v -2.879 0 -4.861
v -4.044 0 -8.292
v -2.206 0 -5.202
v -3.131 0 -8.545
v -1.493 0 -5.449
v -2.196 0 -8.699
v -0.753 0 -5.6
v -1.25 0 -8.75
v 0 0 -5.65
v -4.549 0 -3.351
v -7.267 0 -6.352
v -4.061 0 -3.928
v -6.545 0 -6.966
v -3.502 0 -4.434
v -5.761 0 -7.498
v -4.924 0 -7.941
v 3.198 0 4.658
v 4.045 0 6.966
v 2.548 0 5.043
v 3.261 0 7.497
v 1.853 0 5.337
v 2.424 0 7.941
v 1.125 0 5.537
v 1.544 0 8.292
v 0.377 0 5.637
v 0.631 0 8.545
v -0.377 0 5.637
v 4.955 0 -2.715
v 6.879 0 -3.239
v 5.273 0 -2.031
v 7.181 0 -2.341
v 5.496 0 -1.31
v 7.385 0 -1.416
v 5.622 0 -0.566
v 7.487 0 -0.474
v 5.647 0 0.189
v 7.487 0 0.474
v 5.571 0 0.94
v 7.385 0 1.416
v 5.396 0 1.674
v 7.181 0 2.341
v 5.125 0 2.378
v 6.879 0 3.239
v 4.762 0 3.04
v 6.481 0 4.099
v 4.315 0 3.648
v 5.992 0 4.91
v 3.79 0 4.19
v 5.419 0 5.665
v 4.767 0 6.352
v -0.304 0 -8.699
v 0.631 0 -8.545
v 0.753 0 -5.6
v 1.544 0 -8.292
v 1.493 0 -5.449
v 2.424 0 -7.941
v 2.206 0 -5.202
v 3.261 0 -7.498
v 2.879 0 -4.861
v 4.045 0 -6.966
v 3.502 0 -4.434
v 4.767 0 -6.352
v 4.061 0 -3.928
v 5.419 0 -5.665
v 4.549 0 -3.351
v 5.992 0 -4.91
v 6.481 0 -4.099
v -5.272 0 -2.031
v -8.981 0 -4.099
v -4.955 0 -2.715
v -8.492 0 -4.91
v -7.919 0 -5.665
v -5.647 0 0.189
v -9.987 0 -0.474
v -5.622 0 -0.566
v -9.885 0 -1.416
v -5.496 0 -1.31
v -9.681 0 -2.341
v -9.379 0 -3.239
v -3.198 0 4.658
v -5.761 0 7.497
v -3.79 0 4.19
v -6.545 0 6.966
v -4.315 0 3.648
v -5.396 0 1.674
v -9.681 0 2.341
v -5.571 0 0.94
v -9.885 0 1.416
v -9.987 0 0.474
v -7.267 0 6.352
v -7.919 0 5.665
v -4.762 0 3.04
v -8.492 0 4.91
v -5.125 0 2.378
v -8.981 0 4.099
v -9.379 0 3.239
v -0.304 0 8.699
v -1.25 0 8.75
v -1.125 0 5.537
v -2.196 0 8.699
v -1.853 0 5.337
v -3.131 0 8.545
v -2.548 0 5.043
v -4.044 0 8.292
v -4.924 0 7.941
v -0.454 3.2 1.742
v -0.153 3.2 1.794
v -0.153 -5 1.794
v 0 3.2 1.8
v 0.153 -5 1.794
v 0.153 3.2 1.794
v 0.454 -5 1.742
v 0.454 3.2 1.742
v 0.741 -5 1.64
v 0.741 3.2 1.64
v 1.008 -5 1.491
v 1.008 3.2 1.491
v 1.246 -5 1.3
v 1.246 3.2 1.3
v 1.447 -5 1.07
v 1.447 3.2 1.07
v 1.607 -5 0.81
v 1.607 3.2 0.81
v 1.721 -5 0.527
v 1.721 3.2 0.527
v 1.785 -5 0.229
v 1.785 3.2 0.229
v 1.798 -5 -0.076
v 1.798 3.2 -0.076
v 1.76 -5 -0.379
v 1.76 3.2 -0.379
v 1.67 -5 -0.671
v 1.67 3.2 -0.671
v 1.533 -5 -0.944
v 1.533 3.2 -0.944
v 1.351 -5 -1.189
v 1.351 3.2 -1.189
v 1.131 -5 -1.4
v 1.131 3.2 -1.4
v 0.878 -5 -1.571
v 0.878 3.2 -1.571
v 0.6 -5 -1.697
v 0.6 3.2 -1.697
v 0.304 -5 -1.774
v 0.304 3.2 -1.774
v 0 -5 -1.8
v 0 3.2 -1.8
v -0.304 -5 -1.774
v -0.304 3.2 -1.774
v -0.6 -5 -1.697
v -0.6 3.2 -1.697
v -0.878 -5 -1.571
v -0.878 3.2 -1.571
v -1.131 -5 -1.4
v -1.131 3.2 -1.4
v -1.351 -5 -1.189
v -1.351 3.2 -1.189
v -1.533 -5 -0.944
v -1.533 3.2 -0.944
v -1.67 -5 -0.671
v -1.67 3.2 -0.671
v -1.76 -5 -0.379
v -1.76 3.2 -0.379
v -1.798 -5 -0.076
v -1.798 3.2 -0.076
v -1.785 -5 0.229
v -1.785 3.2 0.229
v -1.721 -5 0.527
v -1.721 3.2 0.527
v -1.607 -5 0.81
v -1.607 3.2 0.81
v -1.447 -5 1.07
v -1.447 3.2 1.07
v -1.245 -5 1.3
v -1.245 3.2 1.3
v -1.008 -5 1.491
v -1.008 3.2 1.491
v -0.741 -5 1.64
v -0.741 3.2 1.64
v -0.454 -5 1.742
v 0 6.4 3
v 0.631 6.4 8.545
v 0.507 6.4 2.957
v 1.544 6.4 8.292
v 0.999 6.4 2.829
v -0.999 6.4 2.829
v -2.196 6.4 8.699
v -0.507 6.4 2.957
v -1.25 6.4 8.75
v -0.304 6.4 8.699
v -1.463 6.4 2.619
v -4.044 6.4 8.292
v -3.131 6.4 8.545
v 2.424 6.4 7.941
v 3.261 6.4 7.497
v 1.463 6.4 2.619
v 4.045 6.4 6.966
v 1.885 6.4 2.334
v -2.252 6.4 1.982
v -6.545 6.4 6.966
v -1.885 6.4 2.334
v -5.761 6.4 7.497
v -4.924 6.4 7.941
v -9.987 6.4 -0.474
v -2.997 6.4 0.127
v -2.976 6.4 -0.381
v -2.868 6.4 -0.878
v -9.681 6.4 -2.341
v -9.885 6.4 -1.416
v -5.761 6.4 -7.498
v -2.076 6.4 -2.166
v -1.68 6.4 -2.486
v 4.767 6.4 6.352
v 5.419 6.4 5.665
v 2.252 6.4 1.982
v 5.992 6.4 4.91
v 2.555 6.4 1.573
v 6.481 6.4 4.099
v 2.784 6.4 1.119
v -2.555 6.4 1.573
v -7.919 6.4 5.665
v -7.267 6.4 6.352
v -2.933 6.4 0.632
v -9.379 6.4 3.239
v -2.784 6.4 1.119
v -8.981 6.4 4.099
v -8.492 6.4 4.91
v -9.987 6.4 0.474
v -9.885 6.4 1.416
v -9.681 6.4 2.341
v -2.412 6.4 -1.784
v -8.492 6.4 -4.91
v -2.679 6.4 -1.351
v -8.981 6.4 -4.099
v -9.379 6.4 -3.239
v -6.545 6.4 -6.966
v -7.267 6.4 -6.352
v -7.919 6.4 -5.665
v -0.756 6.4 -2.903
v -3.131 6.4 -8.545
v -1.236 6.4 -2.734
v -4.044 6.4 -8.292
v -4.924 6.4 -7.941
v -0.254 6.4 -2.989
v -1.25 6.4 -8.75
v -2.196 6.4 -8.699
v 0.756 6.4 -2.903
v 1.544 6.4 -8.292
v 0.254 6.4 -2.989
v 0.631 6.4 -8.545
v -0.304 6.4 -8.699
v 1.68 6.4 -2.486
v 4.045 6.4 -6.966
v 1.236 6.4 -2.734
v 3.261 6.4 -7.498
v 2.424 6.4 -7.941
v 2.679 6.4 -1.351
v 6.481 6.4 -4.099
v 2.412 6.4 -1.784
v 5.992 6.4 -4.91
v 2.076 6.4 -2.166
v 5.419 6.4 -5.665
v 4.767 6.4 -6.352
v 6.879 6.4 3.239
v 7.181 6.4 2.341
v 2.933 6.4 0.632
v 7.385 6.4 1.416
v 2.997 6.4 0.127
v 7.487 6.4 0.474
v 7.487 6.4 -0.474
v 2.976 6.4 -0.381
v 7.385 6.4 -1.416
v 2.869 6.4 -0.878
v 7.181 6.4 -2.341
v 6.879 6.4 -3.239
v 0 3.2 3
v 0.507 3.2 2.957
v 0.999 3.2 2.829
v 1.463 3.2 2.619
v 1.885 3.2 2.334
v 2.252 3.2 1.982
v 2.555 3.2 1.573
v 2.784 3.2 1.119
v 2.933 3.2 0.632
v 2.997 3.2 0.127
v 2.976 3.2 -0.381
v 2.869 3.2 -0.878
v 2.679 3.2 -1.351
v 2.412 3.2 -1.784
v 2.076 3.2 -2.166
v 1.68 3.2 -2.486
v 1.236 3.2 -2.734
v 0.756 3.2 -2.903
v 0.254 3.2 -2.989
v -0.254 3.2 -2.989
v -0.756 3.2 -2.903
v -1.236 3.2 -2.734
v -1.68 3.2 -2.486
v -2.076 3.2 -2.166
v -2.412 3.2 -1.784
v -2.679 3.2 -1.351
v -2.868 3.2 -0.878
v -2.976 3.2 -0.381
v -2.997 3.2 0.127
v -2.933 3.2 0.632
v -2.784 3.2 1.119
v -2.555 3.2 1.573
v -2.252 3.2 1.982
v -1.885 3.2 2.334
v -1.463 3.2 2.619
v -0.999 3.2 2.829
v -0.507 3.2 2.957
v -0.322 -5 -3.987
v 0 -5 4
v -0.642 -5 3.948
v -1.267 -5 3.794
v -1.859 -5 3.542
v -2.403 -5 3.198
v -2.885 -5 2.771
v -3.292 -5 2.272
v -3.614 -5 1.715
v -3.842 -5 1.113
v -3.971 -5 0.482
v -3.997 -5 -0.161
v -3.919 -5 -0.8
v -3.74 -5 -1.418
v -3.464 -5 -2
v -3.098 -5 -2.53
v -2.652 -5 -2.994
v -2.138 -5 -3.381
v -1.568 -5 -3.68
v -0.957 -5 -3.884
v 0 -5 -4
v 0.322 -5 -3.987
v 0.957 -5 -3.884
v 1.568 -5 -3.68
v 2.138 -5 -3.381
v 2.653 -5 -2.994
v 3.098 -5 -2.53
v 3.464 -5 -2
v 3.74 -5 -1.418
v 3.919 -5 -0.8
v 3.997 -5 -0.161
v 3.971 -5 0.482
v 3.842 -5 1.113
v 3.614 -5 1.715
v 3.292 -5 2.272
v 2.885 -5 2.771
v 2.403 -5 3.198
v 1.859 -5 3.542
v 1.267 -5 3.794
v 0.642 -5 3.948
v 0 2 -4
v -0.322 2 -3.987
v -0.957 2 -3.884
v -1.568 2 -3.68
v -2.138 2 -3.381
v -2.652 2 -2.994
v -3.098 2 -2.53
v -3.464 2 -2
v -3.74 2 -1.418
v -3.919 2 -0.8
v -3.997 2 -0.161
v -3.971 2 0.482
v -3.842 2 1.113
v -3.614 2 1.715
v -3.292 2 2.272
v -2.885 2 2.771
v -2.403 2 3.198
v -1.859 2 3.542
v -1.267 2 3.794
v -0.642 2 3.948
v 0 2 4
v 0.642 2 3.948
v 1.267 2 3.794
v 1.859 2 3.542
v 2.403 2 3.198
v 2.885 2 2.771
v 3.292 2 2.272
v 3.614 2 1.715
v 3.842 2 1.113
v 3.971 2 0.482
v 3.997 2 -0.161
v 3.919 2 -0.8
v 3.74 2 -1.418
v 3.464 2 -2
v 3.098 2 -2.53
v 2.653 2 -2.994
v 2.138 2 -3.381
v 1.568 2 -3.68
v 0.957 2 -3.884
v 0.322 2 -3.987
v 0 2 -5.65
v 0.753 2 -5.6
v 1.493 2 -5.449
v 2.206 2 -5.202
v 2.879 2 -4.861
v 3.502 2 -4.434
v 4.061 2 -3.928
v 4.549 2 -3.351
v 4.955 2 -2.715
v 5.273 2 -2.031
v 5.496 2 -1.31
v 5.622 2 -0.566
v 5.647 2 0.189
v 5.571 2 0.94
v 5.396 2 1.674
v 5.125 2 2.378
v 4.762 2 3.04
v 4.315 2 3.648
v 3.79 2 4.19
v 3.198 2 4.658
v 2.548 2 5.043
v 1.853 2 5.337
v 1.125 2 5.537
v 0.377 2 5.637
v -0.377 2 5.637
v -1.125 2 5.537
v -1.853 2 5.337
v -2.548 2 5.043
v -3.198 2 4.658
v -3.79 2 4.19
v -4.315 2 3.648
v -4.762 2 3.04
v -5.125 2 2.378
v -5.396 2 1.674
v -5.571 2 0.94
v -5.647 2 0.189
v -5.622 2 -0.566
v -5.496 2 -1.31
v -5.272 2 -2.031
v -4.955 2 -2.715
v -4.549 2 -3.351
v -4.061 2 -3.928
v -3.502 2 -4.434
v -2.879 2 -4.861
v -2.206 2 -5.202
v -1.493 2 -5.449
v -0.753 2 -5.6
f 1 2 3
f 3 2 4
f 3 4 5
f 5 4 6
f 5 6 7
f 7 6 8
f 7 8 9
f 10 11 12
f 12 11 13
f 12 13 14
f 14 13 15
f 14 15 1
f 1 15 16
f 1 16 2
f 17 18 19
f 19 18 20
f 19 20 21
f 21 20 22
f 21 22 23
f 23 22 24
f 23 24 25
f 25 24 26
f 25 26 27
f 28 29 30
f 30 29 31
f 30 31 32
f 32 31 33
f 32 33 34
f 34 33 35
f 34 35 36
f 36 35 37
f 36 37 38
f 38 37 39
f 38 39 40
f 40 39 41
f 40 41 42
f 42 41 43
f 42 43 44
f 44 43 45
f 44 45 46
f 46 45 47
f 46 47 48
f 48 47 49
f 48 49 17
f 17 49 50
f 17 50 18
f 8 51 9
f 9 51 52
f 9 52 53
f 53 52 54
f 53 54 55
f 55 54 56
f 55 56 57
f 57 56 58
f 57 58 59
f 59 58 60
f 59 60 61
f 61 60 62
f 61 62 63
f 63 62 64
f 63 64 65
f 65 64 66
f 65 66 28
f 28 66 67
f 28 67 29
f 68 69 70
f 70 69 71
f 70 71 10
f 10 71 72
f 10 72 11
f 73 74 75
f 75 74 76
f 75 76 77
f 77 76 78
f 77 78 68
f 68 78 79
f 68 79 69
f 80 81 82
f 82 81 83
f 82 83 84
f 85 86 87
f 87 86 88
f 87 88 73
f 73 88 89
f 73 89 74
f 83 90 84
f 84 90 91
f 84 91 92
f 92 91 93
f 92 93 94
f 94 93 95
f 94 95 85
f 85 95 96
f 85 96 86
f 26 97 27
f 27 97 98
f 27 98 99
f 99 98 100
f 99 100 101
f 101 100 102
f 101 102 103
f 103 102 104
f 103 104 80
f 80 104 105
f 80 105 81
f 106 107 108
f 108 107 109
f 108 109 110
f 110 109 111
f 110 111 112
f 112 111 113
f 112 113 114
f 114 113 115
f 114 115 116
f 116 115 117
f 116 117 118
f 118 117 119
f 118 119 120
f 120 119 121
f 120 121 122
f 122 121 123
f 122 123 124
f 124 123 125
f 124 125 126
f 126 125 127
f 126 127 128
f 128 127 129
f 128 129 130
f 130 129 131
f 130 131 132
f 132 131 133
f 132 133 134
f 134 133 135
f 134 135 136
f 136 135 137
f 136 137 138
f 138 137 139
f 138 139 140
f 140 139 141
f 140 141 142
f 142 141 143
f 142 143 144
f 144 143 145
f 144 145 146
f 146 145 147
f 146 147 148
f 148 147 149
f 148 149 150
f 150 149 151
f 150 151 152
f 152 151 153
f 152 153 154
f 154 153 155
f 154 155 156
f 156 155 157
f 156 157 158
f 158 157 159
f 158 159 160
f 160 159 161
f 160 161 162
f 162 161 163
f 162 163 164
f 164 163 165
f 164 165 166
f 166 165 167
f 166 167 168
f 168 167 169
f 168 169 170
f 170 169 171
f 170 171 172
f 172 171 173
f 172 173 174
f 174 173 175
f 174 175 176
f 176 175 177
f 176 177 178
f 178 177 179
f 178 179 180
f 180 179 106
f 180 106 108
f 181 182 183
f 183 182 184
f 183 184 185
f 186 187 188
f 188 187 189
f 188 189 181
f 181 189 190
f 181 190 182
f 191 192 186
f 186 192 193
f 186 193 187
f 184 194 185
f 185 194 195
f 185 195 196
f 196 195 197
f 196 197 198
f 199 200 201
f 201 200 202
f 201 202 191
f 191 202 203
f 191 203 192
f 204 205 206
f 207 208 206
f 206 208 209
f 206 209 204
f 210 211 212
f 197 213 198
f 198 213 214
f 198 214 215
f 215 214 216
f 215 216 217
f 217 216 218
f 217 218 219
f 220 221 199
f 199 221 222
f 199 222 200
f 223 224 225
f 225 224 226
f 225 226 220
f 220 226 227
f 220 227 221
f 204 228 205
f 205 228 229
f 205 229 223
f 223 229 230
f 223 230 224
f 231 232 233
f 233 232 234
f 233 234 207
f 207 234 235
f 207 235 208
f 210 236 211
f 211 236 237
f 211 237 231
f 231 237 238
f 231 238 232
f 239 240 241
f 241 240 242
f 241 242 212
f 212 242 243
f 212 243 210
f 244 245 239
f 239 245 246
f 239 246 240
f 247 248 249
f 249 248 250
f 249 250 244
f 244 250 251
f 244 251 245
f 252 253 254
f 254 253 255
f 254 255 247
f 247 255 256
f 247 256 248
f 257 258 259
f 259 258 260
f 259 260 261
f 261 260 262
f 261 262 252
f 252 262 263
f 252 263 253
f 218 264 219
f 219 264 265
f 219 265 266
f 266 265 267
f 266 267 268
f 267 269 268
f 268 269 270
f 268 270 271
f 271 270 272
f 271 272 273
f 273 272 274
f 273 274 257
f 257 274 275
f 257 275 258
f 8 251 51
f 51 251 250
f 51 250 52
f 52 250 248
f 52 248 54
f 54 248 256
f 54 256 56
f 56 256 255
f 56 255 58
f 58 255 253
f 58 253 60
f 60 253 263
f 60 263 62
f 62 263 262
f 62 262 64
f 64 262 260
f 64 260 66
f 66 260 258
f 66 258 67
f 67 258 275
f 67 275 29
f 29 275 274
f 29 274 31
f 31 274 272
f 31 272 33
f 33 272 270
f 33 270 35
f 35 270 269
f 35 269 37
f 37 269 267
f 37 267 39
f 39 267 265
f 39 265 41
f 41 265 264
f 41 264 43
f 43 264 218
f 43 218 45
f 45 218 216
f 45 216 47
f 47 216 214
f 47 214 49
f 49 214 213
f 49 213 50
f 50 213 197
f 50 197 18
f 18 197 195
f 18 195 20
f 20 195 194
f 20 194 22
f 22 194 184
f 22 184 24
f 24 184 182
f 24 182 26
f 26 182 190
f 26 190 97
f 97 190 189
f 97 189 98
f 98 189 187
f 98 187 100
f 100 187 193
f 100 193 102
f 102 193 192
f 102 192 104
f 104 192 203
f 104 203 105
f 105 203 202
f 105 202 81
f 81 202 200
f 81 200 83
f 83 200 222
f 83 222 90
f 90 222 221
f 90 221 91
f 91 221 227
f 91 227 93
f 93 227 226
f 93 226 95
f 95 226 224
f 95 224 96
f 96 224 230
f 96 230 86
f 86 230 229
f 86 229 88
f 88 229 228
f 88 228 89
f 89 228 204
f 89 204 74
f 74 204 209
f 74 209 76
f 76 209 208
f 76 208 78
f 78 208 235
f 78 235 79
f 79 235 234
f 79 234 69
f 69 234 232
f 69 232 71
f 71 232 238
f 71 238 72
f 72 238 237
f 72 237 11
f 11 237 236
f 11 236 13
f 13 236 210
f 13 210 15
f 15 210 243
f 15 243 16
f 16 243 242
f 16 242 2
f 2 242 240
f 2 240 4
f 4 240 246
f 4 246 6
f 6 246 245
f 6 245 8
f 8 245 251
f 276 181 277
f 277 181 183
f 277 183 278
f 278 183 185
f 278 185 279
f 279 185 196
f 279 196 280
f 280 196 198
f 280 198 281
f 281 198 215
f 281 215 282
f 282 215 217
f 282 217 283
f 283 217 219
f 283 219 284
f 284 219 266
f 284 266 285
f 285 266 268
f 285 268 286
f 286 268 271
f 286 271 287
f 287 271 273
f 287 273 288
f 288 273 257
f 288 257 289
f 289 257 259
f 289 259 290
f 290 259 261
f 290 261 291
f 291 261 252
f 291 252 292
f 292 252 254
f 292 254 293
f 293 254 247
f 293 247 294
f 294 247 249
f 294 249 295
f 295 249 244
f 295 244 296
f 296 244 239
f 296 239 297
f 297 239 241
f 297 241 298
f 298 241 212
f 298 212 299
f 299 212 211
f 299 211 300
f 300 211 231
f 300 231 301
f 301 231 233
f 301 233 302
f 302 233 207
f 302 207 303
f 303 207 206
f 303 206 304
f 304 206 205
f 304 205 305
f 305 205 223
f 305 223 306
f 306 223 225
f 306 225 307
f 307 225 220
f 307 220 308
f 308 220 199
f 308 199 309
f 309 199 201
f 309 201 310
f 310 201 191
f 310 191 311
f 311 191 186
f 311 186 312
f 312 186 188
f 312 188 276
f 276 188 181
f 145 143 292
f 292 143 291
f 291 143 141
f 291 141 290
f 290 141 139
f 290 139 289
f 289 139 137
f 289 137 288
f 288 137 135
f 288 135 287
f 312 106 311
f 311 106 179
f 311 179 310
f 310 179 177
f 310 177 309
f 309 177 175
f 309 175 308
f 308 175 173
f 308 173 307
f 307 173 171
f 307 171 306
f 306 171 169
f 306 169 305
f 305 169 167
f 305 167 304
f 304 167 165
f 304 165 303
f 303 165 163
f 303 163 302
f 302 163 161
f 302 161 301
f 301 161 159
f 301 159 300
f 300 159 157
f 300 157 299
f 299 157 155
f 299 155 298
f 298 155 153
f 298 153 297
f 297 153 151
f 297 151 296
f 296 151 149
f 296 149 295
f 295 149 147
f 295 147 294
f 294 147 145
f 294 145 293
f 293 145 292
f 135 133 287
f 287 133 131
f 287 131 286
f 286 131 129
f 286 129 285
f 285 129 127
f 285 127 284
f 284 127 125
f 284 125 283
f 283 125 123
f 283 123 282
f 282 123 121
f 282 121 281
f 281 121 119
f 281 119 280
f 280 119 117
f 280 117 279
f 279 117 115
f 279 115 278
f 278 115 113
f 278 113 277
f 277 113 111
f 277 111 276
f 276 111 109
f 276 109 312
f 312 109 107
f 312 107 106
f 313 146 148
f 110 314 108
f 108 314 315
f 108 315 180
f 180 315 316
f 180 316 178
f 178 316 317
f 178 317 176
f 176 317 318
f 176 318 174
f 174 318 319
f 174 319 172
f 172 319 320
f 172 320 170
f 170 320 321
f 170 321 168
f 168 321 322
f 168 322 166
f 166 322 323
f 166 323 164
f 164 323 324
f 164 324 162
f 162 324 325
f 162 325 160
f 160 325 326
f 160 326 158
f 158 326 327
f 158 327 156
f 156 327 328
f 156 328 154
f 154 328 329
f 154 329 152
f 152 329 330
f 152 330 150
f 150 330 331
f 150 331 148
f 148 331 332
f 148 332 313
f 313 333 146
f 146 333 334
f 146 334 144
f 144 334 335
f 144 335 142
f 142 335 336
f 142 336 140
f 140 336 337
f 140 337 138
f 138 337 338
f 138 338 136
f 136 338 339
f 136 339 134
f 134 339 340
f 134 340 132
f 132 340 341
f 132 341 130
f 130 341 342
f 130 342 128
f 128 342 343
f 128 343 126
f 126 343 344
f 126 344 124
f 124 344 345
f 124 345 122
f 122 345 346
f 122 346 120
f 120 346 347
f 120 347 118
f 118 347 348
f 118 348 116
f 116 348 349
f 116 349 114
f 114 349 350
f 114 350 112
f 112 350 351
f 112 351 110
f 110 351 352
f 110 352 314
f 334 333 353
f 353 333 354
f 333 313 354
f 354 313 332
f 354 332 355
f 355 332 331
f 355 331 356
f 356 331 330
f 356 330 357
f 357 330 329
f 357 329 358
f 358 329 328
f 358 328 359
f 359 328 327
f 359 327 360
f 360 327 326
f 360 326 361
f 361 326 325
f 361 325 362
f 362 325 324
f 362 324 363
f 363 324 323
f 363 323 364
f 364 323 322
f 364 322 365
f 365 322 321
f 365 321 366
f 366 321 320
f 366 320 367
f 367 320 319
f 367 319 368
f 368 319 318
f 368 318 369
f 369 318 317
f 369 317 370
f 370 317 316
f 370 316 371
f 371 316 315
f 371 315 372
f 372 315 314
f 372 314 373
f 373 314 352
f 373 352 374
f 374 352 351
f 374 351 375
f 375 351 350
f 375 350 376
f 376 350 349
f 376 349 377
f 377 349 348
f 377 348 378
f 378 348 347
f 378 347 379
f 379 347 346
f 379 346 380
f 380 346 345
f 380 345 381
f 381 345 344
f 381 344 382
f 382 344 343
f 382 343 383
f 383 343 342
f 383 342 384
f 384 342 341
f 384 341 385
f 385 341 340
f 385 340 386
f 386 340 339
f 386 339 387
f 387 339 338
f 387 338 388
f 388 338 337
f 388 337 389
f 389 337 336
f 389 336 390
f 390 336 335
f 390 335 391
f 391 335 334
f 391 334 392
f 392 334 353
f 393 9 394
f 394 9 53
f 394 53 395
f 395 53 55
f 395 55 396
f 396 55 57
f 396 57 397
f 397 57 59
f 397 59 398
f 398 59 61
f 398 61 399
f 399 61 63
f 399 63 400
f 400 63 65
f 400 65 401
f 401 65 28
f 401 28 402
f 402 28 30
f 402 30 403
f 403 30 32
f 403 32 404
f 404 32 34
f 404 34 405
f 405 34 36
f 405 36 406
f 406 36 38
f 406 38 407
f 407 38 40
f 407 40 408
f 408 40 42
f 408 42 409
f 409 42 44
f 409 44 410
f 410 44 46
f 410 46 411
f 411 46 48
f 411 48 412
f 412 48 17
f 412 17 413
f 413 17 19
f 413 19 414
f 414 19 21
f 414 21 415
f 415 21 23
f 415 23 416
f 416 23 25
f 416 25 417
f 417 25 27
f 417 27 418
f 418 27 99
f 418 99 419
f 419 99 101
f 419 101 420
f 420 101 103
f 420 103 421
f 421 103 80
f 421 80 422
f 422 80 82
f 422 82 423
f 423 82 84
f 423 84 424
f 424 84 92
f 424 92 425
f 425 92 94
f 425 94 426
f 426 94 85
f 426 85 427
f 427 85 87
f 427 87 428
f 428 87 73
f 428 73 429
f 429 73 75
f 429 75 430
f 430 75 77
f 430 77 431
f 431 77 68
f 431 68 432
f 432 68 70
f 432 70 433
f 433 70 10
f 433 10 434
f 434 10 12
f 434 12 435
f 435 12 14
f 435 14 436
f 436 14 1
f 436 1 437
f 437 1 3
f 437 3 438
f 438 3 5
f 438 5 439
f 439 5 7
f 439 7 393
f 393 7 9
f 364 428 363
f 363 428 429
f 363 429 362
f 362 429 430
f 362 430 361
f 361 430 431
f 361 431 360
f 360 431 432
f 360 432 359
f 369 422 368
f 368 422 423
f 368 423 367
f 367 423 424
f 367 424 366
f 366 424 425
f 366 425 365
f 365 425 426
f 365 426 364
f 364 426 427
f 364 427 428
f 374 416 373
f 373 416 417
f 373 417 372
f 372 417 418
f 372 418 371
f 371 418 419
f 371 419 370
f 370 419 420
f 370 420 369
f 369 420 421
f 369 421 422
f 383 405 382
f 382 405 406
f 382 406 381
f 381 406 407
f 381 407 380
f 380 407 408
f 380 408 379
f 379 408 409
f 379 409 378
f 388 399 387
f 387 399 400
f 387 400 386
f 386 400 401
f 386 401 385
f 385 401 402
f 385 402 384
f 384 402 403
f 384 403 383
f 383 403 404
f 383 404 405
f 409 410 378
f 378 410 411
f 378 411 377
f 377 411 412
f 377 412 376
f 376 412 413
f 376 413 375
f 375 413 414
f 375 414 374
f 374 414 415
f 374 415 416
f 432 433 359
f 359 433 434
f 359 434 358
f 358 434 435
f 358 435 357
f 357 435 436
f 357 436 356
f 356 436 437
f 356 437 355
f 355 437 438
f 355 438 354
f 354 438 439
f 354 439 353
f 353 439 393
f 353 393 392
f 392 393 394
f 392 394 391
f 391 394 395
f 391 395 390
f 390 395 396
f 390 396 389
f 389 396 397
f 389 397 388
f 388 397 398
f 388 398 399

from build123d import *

# Parameters (mm, degrees)
SKETCH_1_R          = 8.75
SKETCH_1_R_2        = 1.8
EXTRUDE_1_DEPTH     = 6.4
SKETCH_7_R          = 3
CUT_EXTRUDE_1_DEPTH = 3.2
SKETCH_8_R          = 4
SKETCH_8_R_2        = 1.8
EXTRUDE_2_DEPTH     = 5
SKETCH_9_R          = 5.65
SKETCH_9_R_2        = 4
CUT_EXTRUDE_2_DEPTH = 2


with BuildPart() as part:
    # Эскиз1 → Бобышка-Вытянуть1 (new body)
    with BuildSketch(Plane(origin=(0, 0, 0), x_dir=(1, 0, 0), z_dir=(0, 1, 0))):
        with Locations((-1.25, 0)):
            Circle(SKETCH_1_R)
        Circle(SKETCH_1_R_2, mode=Mode.SUBTRACT)
    extrude(amount=EXTRUDE_1_DEPTH)

    # Эскиз7 → Вырез-Вытянуть1 (cut)
    with BuildSketch(Plane(origin=(0, 6.4, 0), x_dir=(1, 0, 0), z_dir=(0, 1, 0))):
        Circle(SKETCH_7_R)
    extrude(amount=-CUT_EXTRUDE_1_DEPTH, mode=Mode.SUBTRACT)

    # Эскиз8 → Бобышка-Вытянуть2 (add)
    with BuildSketch(Plane.XZ):
        Circle(SKETCH_8_R)
        Circle(SKETCH_8_R_2, mode=Mode.SUBTRACT)
    extrude(amount=EXTRUDE_2_DEPTH)

    # Эскиз9 → Вырез-Вытянуть2 (cut)
    with BuildSketch(Plane.XZ):
        Circle(SKETCH_9_R)
        Circle(SKETCH_9_R_2, mode=Mode.SUBTRACT)
    extrude(amount=-CUT_EXTRUDE_2_DEPTH, mode=Mode.SUBTRACT)


solid = part.part
